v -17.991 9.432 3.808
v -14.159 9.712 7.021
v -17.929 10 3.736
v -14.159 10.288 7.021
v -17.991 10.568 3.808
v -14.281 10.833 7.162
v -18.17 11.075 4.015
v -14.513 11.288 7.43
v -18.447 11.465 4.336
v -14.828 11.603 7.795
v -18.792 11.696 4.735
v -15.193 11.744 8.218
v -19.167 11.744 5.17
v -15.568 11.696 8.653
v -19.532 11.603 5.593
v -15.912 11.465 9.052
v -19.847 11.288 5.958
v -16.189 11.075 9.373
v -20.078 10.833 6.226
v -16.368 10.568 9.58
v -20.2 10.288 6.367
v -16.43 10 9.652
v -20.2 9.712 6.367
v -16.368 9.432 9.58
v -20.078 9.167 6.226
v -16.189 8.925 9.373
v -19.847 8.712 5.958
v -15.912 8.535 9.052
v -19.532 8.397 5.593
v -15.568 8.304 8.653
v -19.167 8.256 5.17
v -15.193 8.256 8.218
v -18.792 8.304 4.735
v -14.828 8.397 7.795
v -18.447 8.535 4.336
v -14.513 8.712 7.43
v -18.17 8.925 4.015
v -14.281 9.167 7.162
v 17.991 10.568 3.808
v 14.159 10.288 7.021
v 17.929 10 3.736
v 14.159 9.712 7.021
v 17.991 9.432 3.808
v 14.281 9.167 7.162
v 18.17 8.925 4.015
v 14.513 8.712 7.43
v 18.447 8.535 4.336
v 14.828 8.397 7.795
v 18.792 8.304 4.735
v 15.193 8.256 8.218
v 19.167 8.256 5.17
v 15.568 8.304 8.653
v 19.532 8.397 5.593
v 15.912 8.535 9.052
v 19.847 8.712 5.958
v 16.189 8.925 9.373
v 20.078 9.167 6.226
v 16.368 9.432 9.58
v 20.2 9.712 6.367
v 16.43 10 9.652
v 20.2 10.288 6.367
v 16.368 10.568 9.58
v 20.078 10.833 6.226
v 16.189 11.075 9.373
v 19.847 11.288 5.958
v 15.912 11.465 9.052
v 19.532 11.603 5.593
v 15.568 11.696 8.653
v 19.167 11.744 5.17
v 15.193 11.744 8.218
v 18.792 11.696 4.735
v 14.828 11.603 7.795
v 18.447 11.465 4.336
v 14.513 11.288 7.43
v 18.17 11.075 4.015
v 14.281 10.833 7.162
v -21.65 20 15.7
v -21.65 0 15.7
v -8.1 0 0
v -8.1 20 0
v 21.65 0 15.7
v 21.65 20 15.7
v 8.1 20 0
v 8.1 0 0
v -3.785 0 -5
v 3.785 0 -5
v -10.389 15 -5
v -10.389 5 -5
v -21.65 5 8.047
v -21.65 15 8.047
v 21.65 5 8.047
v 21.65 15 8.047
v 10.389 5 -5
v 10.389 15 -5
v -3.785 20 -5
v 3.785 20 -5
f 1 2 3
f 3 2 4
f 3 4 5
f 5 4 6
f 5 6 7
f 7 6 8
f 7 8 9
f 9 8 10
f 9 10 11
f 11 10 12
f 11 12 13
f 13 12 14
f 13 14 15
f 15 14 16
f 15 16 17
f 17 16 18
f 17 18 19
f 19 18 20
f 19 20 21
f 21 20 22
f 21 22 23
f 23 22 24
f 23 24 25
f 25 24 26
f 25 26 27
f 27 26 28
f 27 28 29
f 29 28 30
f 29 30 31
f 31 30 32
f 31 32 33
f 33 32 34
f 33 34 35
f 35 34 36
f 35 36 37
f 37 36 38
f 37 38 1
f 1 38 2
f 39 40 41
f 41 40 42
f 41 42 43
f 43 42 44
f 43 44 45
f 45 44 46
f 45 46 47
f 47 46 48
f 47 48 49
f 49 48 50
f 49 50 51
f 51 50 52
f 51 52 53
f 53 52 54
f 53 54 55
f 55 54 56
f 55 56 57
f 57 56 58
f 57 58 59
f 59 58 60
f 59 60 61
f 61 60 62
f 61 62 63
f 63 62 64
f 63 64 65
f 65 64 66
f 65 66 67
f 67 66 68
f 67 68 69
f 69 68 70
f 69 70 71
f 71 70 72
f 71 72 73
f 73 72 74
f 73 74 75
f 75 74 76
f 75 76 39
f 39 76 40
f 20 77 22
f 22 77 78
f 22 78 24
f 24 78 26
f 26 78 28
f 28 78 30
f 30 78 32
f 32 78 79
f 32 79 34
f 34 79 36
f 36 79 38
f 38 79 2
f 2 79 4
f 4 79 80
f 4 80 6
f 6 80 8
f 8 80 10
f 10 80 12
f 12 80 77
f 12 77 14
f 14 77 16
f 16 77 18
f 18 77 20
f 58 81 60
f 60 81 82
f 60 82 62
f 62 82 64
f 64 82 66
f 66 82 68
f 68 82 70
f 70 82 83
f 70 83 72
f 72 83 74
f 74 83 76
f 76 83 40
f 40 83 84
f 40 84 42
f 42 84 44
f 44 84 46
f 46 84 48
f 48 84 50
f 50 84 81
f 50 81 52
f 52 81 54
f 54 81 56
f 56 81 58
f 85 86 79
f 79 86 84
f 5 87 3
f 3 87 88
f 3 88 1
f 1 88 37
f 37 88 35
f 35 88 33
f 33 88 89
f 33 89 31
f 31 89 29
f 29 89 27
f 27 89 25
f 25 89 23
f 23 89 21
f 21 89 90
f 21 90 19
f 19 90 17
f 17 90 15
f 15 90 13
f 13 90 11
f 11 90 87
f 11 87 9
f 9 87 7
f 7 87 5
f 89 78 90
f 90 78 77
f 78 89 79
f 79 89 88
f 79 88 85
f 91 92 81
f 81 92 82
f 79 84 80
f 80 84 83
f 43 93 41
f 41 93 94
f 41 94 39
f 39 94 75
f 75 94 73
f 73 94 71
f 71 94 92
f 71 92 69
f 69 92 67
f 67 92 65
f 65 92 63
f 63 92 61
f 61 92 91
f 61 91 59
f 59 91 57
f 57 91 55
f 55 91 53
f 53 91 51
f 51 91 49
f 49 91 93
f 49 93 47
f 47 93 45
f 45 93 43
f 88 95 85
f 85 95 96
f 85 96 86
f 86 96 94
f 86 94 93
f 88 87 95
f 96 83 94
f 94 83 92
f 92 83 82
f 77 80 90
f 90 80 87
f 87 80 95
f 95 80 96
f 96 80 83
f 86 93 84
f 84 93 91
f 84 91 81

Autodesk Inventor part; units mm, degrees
ref_plane "YZ Plane" through (0, 0, 0) normal (1, 0, 0) x (0, 1, 0)
ref_plane "XZ Plane" through (0, 0, 0) normal (0, 1, 0) x (-1, 0, 0)
ref_plane "XY Plane" through (0, 0, 0) normal (0, 0, 1) x (1, 0, 0)
sketch "스케치1" plane through (0, 0, 0) normal (0, 1, 0) x (-1, 0, 0)
  line L0 (0, 0) -> (-8.1, 0)
  line L1 (-8.1, 0) -> (-21.65, 15.7)
  line L2 (-21.65, 15.7) -> (-21.65, 8.0474)
  line L3 (-21.65, 8.0474) -> (-10.3894, -5)
  line L4 (-10.3894, -5) -> (0, -5)
  line L5 (0, -5) -> (0, 0)
  line L6 (0, 0) -> (8.1, 0)
  line L7 (8.1, 0) -> (21.65, 15.7)
  line L8 (21.65, 15.7) -> (21.65, 8.0474)
  line L9 (21.65, 8.0474) -> (10.3894, -5)
  line L10 (10.3894, -5) -> (0, -5)
  dimension "d0" = 15.7
  dimension "d1" = 43.3
  dimension "d2" = 16.2
  dimension "d3" = 5
  dimension "d4" = 5
extrude "돌출1" add sketch "스케치1" along normal blind 20
sketch "스케치2" plane through (21.65, 0, 15.7) normal (-0.757, 0, 0.6534) x (0.6534, 0, 0.757)
  line L0 (-20.7387, 20) -> (0, 20) projected
  line L1 (-9.7387, 20) -> (-9.7387, 0)
  line L2 (-20.7387, 0) -> (0, 0) projected
  line L3 (0, 0) -> (0, 20) projected
  line L4 (-20.7387, 0) -> (-20.7387, 20) projected
  circle A0 centre (-9.7387, 10) radius 1.75
  point P0 (-26.031, 0)
  dimension "d8" = 11
  dimension "d9" = 3.5
  dimension "d10" = 10
  dimension "d11" = 11
extrude "돌출2" cut sketch "스케치2" against normal through all contours A0 L1 | L1 A0
mirror "미러1" about plane through (0, 0, 0) normal (1, 0, 0) of "돌출2"
chamfer "모따기1" distance 5 angle 45 4 edges at (16.0197, 20, 1.5237) (-16.0197, 20, 1.5237) (16.0197, 0, 1.5237) (-16.0197, 0, 1.5237)
properties part number "sun3" material "티타늄"
